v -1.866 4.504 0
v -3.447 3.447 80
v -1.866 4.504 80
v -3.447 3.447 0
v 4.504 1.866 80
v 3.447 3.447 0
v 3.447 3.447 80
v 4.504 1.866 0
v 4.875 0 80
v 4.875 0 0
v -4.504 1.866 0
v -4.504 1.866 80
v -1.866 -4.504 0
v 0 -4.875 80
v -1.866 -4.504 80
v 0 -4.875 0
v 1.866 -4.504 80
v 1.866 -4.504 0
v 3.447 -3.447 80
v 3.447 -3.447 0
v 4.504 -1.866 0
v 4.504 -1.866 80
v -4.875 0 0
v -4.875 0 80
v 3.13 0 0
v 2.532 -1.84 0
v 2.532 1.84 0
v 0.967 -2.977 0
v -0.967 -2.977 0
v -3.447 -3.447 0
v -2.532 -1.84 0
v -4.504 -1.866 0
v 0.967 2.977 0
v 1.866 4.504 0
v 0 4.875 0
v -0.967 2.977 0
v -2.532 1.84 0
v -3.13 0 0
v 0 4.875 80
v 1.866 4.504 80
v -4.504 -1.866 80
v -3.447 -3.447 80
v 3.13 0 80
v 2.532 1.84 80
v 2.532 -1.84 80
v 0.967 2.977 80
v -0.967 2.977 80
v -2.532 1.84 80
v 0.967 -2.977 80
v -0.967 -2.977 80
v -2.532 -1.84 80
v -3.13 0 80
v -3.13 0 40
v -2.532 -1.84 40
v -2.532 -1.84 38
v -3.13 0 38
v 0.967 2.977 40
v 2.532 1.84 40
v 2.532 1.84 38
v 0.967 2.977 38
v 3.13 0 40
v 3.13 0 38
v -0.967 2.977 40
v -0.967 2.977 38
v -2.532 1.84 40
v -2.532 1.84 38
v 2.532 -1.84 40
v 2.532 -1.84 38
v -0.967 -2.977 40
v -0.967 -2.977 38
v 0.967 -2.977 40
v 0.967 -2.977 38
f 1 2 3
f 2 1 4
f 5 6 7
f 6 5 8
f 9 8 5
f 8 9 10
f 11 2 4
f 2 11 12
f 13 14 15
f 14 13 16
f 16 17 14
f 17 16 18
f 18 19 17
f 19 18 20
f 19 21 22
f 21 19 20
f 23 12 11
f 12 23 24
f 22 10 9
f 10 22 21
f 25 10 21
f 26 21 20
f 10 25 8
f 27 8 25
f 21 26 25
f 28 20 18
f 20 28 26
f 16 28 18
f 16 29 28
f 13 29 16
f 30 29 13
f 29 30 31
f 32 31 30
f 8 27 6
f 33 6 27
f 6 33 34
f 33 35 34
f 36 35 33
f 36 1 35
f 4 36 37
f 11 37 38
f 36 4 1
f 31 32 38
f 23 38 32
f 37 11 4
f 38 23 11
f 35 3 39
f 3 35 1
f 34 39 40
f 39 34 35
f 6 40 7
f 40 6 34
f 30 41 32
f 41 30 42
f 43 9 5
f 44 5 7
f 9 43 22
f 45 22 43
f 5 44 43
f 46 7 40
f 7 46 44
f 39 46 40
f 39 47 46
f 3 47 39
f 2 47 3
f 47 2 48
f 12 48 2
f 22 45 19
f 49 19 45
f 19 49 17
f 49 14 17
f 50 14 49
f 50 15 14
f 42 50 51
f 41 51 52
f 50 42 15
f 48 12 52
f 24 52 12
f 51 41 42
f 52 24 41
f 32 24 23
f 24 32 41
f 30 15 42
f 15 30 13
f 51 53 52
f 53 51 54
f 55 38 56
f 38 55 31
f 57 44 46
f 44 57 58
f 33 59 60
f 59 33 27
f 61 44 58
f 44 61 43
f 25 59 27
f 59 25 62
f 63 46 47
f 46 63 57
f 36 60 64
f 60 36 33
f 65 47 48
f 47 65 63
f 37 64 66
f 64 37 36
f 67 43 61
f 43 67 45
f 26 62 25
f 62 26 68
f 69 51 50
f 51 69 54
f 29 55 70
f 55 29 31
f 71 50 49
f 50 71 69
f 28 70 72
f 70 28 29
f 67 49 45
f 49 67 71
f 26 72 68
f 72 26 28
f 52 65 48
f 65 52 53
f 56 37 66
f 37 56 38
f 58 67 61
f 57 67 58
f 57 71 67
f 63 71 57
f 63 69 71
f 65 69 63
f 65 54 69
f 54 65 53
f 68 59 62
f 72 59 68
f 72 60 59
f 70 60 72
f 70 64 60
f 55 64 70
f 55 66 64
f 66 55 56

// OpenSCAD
// Veloplus Flag pole conecter
// 27.10.2023 Lukas Grimm <ombre@ombre.ch>
// This program is free software: you can redistribute it and/or modify
// it under the terms of the GNU General Public License as published by
// the Free Software Foundation, either version 3 of the License, or
// (at your option) any later version.
//
// This program is distributed in the hope that it will be useful,
// but WITHOUT ANY WARRANTY; without even the implied warranty of
// MERCHANTABILITY or FITNESS FOR A PARTICULAR PURPOSE.  See the
// GNU General Public License for more details.
//
// You should have received a copy of the GNU General Public License
// along with this program.  If not, see <http://www.gnu.org/licenses/>.

translate([0,0,40]){
    difference(){
        cylinder(h = 80, d = 9.75, center = true);
        cylinder(h = 81, d = 6.26, center = true);
    }
    translate([0,0,-1])
    cylinder(h = 2, d = 9, center = true);
}
